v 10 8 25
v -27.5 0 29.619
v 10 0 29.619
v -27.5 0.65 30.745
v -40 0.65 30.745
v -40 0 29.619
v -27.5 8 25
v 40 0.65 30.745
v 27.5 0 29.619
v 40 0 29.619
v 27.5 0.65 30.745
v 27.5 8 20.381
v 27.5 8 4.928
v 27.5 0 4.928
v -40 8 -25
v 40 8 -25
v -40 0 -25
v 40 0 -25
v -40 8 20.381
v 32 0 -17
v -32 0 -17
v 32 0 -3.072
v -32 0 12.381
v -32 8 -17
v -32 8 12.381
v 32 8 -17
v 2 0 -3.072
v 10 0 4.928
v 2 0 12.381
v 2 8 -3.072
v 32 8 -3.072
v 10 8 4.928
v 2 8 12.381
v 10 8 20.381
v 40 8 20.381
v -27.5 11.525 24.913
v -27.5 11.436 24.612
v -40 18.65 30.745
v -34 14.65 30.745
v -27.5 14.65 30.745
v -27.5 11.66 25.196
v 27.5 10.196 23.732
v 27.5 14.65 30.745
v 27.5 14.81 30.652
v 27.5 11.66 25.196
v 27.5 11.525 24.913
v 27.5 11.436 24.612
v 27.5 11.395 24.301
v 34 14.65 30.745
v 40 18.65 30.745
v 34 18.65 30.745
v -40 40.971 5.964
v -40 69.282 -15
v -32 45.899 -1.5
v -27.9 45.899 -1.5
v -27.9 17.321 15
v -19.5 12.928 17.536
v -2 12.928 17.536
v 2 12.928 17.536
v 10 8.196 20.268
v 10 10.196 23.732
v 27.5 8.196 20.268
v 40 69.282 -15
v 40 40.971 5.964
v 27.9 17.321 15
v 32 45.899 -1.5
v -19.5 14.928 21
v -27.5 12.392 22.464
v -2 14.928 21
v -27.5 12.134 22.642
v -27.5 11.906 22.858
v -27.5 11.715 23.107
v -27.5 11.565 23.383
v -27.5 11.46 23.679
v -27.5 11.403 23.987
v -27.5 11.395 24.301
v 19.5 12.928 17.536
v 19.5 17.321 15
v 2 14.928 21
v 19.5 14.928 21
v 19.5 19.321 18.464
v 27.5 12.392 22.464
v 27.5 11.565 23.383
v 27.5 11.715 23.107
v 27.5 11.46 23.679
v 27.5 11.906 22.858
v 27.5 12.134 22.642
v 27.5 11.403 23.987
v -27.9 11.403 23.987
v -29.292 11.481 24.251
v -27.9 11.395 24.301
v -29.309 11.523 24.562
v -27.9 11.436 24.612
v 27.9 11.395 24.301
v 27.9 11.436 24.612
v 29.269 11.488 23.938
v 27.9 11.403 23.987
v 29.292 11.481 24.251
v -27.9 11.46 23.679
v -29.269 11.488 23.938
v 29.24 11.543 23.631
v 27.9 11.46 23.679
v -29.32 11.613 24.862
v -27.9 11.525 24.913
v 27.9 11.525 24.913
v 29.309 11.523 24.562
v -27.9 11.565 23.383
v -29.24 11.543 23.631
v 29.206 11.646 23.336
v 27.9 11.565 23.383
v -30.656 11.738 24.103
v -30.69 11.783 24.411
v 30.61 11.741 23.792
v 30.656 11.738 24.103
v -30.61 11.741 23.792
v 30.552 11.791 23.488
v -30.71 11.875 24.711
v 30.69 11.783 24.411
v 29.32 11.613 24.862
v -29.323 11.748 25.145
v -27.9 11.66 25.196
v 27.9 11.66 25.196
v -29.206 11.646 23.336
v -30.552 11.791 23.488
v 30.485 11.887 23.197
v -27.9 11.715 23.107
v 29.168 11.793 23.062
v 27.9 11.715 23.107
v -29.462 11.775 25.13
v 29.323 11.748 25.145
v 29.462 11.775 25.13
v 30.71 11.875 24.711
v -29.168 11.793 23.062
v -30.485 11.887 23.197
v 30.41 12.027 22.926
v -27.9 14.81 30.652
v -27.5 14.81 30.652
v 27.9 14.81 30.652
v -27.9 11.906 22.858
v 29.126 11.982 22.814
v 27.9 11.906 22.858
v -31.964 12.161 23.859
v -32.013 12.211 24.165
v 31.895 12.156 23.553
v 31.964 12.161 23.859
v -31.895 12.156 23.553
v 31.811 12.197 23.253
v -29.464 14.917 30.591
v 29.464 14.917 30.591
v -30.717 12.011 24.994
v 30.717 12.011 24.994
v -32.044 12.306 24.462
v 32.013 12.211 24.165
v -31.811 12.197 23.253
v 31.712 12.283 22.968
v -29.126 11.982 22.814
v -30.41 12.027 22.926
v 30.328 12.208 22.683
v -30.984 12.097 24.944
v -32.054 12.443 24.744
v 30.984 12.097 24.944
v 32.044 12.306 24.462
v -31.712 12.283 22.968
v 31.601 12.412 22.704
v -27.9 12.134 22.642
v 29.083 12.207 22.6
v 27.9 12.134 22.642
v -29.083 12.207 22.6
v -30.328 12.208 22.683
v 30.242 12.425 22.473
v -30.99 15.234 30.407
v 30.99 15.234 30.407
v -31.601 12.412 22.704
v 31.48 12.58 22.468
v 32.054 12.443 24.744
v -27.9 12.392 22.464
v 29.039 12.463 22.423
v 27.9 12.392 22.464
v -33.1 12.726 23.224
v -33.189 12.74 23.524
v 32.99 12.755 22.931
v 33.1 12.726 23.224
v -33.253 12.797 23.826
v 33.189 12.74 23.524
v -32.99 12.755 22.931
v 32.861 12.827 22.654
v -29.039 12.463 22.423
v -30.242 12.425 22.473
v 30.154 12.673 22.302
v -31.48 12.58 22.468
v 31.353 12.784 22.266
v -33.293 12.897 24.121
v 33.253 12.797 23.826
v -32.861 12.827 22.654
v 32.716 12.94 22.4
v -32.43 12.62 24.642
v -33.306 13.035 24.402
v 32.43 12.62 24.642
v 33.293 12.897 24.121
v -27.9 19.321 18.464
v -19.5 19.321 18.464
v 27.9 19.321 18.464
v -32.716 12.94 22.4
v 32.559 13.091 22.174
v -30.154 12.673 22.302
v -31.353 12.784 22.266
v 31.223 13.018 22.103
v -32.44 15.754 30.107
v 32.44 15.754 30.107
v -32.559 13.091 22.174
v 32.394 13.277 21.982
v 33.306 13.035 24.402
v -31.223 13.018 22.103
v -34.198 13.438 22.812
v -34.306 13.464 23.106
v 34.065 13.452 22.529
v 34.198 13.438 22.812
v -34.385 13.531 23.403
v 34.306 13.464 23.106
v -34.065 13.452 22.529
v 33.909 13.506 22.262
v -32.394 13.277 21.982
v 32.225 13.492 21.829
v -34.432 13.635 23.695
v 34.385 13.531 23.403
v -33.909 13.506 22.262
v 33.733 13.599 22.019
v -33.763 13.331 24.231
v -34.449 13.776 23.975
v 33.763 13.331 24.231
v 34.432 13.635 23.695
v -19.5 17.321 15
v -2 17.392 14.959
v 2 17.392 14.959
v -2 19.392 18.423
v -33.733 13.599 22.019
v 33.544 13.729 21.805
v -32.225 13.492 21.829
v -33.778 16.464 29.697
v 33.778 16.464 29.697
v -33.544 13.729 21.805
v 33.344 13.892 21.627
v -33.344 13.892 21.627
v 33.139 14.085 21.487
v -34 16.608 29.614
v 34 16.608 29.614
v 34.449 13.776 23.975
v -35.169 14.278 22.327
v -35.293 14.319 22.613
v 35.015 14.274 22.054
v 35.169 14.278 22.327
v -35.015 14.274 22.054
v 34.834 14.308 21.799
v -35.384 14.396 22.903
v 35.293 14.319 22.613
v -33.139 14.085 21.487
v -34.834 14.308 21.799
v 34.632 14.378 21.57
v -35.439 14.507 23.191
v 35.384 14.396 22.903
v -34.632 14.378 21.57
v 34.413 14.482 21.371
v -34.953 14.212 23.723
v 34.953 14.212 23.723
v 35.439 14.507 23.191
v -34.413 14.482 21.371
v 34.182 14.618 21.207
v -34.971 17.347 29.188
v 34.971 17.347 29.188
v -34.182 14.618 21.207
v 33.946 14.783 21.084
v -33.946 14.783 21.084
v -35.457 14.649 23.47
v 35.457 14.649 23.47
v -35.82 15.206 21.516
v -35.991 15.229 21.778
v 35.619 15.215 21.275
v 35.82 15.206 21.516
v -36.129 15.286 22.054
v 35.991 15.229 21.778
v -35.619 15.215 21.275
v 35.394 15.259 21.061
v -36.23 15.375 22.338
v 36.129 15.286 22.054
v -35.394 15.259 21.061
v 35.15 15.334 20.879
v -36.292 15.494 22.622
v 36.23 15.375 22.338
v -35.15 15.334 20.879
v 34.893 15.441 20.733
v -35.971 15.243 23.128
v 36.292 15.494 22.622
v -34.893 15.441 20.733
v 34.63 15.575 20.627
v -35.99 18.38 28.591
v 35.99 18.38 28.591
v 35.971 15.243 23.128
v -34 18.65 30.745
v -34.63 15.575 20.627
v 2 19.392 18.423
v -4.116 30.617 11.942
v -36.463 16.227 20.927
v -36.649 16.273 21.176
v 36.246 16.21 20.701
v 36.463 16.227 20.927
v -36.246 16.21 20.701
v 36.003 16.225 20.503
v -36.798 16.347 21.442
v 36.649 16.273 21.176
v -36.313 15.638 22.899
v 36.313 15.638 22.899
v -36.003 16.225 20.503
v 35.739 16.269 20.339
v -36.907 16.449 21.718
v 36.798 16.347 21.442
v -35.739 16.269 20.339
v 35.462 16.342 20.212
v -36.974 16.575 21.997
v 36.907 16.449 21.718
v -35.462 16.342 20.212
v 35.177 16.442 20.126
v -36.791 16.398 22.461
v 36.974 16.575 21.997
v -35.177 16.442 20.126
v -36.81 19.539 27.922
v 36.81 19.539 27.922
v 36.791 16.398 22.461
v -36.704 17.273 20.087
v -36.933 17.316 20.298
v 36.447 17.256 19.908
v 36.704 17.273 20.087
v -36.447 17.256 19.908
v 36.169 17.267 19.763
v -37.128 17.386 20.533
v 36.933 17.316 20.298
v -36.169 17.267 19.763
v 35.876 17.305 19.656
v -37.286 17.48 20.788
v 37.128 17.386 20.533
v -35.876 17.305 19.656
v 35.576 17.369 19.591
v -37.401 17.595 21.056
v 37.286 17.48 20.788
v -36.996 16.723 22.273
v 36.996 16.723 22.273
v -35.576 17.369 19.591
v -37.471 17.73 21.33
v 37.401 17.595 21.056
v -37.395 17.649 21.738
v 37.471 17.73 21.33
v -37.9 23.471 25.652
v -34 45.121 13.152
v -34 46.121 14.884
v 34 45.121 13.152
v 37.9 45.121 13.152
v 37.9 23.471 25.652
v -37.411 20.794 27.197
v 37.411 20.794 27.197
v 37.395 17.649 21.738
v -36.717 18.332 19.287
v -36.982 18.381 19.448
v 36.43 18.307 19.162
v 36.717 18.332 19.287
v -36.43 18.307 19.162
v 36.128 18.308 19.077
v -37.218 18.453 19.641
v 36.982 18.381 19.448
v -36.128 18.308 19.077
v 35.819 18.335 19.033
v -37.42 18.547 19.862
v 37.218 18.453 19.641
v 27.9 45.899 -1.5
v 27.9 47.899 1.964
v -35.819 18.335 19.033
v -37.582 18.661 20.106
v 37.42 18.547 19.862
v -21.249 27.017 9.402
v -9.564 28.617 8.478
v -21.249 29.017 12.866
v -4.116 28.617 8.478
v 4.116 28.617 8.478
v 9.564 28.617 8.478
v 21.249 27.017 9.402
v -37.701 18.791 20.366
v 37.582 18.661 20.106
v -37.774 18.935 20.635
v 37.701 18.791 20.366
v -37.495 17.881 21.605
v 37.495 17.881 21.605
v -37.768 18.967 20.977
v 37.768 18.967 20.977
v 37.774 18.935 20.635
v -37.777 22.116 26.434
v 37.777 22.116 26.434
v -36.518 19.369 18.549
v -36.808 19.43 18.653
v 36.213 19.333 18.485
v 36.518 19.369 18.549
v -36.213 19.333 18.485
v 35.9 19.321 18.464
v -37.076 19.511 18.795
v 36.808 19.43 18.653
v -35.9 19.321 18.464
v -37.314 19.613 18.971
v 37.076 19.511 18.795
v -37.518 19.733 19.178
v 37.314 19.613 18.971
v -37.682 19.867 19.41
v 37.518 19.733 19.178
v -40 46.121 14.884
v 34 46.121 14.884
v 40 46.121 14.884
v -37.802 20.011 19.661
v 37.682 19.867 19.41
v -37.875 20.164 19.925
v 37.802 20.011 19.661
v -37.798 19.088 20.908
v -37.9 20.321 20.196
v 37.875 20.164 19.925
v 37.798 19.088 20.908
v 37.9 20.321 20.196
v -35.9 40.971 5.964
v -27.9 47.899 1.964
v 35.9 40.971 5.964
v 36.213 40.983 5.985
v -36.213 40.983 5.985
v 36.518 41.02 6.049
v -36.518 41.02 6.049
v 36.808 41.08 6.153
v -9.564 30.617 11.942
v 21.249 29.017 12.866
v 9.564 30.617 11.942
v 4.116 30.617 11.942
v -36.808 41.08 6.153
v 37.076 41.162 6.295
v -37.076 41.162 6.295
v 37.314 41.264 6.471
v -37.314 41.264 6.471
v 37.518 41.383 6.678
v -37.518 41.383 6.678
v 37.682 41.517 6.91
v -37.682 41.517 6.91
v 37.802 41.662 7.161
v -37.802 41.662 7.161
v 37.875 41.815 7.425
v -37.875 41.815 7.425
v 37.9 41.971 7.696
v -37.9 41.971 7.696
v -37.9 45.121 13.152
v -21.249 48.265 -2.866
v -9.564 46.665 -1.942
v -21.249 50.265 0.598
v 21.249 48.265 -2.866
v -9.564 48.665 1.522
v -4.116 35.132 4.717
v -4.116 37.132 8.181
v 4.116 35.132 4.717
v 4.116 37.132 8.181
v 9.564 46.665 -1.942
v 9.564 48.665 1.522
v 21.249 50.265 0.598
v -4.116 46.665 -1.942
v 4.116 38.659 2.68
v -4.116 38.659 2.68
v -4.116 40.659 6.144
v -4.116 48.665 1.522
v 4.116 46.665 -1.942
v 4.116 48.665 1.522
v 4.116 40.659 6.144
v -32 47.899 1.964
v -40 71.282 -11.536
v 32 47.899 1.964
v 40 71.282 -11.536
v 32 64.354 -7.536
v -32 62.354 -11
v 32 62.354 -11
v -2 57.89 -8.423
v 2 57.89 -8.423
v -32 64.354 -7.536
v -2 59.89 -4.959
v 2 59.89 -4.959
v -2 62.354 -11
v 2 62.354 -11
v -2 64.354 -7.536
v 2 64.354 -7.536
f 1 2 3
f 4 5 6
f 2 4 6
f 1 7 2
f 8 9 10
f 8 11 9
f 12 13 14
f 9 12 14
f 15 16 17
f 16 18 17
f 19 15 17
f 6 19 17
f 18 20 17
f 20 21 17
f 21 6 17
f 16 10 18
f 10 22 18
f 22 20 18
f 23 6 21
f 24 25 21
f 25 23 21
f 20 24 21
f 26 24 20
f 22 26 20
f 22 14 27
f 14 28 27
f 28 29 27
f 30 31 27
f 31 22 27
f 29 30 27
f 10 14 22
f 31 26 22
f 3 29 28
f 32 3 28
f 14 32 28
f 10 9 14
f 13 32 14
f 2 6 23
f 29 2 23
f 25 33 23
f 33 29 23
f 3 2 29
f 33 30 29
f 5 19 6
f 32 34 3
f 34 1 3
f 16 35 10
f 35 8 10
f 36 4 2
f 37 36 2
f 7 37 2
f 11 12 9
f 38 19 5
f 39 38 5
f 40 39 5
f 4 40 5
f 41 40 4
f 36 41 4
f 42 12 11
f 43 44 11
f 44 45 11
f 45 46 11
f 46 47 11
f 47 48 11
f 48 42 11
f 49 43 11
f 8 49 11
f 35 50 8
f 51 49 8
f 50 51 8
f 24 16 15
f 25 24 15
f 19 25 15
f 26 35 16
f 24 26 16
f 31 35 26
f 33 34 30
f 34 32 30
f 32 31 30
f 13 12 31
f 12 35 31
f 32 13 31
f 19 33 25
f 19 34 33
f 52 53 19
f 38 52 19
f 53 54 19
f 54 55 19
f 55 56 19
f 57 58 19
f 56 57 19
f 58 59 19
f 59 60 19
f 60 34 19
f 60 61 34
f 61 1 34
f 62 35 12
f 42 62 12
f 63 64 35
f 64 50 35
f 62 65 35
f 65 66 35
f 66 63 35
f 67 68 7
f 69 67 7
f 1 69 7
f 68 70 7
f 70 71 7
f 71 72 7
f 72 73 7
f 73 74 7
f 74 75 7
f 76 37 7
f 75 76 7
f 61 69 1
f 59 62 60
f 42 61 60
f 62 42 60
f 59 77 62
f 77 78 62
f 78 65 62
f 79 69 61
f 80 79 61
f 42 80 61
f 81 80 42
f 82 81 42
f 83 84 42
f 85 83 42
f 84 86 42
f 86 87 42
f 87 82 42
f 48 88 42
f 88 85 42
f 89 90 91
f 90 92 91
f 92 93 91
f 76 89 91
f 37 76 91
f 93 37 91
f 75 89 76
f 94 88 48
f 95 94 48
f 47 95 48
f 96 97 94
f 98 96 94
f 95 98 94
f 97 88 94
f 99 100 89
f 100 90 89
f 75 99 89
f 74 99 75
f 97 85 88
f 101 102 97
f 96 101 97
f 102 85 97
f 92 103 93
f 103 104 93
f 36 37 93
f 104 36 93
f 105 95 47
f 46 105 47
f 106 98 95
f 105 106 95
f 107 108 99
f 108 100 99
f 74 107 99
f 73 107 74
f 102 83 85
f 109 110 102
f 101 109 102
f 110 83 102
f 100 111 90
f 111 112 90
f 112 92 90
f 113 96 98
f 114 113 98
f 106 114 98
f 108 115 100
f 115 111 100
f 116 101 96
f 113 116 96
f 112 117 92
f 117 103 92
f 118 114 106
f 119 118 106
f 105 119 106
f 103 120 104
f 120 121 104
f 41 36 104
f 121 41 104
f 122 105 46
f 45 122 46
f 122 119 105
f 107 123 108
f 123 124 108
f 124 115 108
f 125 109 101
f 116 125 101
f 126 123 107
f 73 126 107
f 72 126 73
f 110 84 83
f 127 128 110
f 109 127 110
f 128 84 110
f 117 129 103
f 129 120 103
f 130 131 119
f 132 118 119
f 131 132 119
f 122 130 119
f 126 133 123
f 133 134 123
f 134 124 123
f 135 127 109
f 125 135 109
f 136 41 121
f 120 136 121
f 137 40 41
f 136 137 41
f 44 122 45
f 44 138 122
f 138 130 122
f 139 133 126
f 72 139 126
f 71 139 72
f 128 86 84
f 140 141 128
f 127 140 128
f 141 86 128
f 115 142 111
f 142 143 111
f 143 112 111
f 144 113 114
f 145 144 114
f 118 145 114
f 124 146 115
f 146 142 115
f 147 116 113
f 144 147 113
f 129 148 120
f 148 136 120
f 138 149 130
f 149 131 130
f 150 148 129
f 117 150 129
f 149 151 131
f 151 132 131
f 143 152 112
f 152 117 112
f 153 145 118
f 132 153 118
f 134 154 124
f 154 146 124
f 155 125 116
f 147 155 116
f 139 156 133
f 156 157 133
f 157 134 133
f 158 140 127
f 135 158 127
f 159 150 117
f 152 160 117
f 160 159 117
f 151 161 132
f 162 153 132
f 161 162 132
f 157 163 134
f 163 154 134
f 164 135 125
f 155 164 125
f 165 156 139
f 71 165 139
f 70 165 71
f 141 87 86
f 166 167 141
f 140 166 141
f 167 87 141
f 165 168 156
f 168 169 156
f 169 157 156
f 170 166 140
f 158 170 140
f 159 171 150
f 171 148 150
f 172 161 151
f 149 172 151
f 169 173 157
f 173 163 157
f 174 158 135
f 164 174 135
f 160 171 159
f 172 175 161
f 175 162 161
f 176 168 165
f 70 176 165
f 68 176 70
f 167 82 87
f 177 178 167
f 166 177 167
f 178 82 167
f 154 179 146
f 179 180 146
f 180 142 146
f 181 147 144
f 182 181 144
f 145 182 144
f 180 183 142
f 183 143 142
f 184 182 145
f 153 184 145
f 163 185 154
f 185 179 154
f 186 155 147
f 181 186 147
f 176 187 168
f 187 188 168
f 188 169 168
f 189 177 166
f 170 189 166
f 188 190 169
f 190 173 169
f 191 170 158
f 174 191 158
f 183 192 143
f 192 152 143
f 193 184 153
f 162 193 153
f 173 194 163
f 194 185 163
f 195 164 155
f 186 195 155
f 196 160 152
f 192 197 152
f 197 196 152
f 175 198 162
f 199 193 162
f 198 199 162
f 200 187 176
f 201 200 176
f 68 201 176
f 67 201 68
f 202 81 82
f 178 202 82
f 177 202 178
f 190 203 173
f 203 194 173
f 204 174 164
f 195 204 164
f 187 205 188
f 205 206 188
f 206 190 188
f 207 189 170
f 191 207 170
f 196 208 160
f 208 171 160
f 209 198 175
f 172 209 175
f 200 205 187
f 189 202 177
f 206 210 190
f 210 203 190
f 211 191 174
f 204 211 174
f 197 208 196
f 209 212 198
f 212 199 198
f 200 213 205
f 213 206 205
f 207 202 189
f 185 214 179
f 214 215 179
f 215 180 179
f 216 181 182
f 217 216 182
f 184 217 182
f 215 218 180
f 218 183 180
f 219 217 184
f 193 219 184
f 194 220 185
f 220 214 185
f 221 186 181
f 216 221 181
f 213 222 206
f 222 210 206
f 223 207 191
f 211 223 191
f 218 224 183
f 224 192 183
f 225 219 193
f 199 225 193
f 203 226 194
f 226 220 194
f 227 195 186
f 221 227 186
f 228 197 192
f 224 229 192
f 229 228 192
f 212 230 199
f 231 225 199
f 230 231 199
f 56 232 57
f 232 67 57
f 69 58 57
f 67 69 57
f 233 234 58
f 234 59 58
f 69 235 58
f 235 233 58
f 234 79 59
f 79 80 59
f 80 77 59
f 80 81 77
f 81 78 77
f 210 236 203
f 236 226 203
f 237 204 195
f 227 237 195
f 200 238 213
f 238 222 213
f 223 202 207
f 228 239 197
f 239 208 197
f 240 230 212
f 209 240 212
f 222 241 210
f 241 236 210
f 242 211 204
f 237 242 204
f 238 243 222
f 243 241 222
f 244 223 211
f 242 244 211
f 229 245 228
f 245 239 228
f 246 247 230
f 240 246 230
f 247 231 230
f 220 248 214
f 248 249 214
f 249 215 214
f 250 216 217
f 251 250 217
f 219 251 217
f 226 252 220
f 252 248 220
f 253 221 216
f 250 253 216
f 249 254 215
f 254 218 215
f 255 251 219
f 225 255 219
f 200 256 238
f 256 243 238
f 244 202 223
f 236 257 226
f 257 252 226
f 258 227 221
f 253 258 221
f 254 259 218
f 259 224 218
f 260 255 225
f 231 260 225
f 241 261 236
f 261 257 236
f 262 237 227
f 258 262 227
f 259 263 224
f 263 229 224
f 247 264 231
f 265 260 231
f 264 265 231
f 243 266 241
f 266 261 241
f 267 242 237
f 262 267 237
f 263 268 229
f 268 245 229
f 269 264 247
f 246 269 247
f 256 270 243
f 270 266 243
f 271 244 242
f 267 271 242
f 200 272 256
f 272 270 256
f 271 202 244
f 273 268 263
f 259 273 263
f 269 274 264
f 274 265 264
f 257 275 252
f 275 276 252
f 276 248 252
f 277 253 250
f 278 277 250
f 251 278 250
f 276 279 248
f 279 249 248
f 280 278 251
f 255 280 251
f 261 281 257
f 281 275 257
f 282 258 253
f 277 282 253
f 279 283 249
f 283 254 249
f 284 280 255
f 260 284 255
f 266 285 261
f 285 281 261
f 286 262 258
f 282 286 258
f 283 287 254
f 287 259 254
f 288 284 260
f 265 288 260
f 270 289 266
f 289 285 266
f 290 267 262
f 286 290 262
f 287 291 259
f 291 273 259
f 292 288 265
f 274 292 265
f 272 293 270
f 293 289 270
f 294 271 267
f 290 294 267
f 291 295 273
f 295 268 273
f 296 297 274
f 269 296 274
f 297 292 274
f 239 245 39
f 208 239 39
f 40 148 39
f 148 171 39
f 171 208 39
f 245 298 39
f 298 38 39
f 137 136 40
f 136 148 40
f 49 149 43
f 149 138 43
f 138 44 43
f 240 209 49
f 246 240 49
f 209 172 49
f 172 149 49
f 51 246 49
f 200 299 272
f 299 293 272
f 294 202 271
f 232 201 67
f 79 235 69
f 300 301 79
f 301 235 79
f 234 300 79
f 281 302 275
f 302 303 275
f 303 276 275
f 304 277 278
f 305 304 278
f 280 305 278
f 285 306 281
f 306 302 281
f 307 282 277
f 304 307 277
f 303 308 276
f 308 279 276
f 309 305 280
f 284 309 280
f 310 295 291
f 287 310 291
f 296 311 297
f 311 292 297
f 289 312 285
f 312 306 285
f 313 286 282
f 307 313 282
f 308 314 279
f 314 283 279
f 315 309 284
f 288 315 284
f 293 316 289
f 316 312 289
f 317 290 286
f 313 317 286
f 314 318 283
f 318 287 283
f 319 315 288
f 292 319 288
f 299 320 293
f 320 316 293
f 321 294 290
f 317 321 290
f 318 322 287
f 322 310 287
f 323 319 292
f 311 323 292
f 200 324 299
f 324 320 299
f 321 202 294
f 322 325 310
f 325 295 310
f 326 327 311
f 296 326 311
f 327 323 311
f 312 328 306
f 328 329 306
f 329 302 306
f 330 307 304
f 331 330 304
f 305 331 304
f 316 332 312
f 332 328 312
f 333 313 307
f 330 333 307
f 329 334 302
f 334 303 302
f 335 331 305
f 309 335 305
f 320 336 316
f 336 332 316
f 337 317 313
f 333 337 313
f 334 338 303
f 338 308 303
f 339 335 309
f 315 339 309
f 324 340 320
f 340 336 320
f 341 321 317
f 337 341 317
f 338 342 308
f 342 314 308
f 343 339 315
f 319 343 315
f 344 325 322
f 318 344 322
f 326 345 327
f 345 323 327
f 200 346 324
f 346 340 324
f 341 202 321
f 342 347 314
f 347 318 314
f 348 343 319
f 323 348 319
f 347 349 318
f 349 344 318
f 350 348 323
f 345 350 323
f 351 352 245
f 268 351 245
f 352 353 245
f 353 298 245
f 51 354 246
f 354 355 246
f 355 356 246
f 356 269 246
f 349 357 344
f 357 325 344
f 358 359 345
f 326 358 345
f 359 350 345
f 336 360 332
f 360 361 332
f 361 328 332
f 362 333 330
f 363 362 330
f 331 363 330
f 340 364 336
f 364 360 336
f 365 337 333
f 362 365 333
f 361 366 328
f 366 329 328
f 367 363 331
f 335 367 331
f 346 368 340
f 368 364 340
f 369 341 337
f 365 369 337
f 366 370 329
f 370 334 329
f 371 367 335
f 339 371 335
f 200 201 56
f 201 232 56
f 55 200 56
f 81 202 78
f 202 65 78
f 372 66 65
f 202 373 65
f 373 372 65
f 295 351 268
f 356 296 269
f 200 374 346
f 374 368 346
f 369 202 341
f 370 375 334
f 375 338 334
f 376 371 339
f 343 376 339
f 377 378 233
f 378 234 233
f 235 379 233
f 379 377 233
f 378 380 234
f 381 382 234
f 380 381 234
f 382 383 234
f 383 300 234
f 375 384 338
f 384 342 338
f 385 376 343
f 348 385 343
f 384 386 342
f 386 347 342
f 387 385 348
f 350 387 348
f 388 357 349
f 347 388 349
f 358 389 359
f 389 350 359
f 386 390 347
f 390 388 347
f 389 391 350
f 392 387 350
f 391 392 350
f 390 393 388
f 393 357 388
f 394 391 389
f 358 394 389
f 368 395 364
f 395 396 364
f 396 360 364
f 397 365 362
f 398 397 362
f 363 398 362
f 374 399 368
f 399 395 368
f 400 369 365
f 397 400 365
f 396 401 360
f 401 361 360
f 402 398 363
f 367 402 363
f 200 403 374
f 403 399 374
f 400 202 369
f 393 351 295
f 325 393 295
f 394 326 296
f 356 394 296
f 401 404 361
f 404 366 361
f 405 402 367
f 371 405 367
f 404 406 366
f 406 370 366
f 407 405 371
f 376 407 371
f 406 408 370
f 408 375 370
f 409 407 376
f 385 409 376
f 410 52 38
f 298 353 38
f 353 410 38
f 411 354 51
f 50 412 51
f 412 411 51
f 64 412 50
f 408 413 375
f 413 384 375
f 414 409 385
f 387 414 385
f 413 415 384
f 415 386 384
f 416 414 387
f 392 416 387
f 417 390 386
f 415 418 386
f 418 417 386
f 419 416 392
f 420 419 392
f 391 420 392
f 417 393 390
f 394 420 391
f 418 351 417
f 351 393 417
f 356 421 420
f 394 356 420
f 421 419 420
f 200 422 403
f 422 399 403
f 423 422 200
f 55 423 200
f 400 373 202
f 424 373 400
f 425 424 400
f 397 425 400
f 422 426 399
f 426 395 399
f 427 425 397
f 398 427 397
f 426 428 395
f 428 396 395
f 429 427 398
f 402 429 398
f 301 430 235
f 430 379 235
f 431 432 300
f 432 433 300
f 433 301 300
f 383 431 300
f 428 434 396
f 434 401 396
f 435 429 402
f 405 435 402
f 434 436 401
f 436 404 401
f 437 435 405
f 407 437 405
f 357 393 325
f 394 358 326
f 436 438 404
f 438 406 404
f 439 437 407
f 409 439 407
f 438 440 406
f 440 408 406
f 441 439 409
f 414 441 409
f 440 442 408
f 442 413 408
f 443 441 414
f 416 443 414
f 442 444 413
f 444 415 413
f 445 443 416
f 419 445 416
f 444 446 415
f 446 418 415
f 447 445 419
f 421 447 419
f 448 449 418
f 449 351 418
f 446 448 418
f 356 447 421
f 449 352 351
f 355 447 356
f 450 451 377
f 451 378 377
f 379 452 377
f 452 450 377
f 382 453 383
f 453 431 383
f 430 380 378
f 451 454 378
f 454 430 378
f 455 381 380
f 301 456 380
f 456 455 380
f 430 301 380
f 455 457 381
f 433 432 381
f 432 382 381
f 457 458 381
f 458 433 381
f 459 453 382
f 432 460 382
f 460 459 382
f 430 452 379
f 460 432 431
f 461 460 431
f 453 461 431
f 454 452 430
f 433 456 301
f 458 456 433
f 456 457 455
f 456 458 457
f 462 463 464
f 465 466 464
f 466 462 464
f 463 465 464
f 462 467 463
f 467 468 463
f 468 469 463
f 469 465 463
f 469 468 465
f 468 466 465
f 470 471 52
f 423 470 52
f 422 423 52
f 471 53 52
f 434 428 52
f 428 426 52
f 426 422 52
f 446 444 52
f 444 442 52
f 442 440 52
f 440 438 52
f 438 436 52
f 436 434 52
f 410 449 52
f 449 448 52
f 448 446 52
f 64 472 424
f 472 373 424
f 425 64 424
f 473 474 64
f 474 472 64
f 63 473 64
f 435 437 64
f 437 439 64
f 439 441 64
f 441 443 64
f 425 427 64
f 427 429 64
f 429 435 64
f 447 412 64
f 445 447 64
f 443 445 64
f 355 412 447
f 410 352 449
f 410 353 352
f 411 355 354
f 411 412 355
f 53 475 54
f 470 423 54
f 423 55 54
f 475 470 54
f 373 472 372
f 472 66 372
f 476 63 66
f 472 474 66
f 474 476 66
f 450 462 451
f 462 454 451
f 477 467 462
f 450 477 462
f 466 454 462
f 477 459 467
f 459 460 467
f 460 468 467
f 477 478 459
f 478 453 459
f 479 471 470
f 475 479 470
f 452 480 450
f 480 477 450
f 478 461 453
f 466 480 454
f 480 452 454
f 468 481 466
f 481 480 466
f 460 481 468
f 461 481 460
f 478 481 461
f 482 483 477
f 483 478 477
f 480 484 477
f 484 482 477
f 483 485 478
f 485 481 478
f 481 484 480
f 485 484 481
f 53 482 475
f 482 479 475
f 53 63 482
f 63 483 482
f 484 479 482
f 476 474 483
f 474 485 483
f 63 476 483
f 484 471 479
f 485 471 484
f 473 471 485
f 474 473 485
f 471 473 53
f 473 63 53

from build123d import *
from OCP.BRepFilletAPI import BRepFilletAPI_MakeChamfer

# Parameters (mm, degrees)
SKETCH1_W           = 80
SKETCH1_H           = 50
BOSS_EXTRUDE1_DEPTH = 8
BOSS_EXTRUDE2_DEPTH = 80
SKETCH3_W           = 2.1
SKETCH3_H           = 35
BOSS_EXTRUDE3_DEPTH = 8.3
FILLET1_R           = 10
FILLET2_R           = 2
BOSS_EXTRUDE4_DEPTH = 10
CHAMFER2_SIZE       = 17.320508076
CHAMFER2_SIZE_2     = 10
SKETCH5_W           = 12.5
SKETCH5_H           = 9.237604307
BOSS_EXTRUDE5_DEPTH = 8.3
SKETCH6_W           = 6
SKETCH6_H           = 47.309401077
BOSS_EXTRUDE6_DEPTH = 2
CHAMFER3_SIZE       = 9
CHAMFER3_SIZE2      = 15.588457268
SKETCH7_W           = 17.5
SKETCH7_H           = 11.773502692
CUT_EXTRUDE1_DEPTH  = 12
SKETCH8_W           = 17.5
SKETCH8_H           = 15
CUT_EXTRUDE2_DEPTH  = 12
CUT_EXTRUDE3_DEPTH  = 12
CUT_EXTRUDE4_DEPTH  = 4
BOSS_EXTRUDE7_DEPTH = 4
CUT_EXTRUDE5_REACH  = 87.126
SKETCH12_W          = 17.5
SKETCH12_H          = 2.535898385


with BuildPart() as part:
    # Sketch1 → Boss-Extrude1 (new body)
    with BuildSketch(Plane(origin=(0, 0, 0), x_dir=(1, 0, 0), z_dir=(0, 1, 0))):
        Rectangle(SKETCH1_W, SKETCH1_H)
    extrude(amount=BOSS_EXTRUDE1_DEPTH)

    # Sketch2 → Boss-Extrude2 (add)
    with BuildSketch(Plane(origin=(40, 0, 0), x_dir=(0, 0, -1), z_dir=(1, 0, 0))):
        Polygon((15, 69.282032303), (11.535898385, 71.282032303), (-25, 8), (-20.381197846, 8), align=None)
    extrude(amount=-BOSS_EXTRUDE2_DEPTH)

    # Sketch3 → Boss-Extrude3 (add)
    with BuildSketch(Plane(origin=(0, 12.825317547, 22.214101615), x_dir=(1, 0, 0), z_dir=(0, 0.5000000000000041, 0.8660254037844364))):
        with Locations((-38.95, 15)):
            Rectangle(SKETCH3_W, SKETCH3_H)
        Polygon((-27.5, -5.57179677), (-27.5, -2.5), (-37.9, -2.5), (-40, -2.5), (-40, -5.57179677), align=None)
        Polygon((40, -5.57179677), (40, -2.5), (37.9, -2.5), (27.5, -2.5), (27.5, -5.57179677), align=None)
        with Locations((38.95, 15)):
            Rectangle(SKETCH3_W, SKETCH3_H)
    extrude(amount=BOSS_EXTRUDE3_DEPTH)

    # Fillet1
    fillet1_edges = [part.edges().sort_by_distance(p)[0] for p in [
        (-37.9, 12.735254038, 27.058107041),
        (37.9, 12.735254038, 27.058107041),
    ]]
    fillet(fillet1_edges, radius=FILLET1_R)

    # Fillet2
    fillet2_edges = [part.edges().sort_by_distance(p)[0] for p in [
        (-27.7, 10.660254038, 23.464101615),
        (-37.9, 30.145825623, 12.214101615),
        (27.7, 10.660254038, 23.464101615),
        (37.9, 30.145825623, 12.214101615),
        (34.971067812, 13.196783719, 21.999635521),
        (-34.971067812, 13.196783719, 21.999635521),
    ]]
    fillet(fillet2_edges, radius=FILLET2_R)

    # Sketch4 → Boss-Extrude4 (add)
    with BuildSketch(Plane.XY.offset(25)):
        Polygon((40, 0), (40, 8), (27.5, 8), (-27.5, 8), (-40, 8), (-40, 0), align=None)
    extrude(amount=BOSS_EXTRUDE4_DEPTH)

    # Chamfer2
    # the kernel refuses this chamfer: 17.320508076, 10 mm, written as the material it takes off along each edge
    with BuildSketch(Plane(origin=(-84.809639706, 8, 35), x_dir=(0, -0.999813220622208, 0.019326765612700497), z_dir=(1, 0, 0))) as chamfer2_piece_1:
        Polygon((CHAMFER2_SIZE * 0.999813220604, CHAMFER2_SIZE * 0.0193267656124), (-CHAMFER2_SIZE_2 * 0.0193267656127, CHAMFER2_SIZE_2 * 0.999813220622), (0, 0), align=None)
    extrude(amount=169.619279412, mode=Mode.SUBTRACT)

    # Sketch5 → Boss-Extrude5 (add)
    with BuildSketch(Plane(origin=(0, 12.825317547, 22.214101615), x_dir=(1, 0, 0), z_dir=(0, 0.49999999999999656, 0.8660254037844407))):
        with Locations((-33.75, -10.190598924)):
            Rectangle(SKETCH5_W, SKETCH5_H)
        with Locations((33.75, -10.190598924)):
            Rectangle(SKETCH5_W, SKETCH5_H)
    extrude(amount=BOSS_EXTRUDE5_DEPTH)

    # Sketch6 → Boss-Extrude6 (add)
    with BuildSketch(Plane(origin=(0, 16.975317547, 29.402112467), x_dir=(1, 0, 0), z_dir=(0, 0.5000000000000041, 0.8660254037844364))):
        with Locations((-37, 8.845299461)):
            Rectangle(SKETCH6_W, SKETCH6_H)
        with Locations((37, 8.845299461)):
            Rectangle(SKETCH6_W, SKETCH6_H)
    extrude(amount=BOSS_EXTRUDE6_DEPTH)

    # Chamfer3: one chamfer whose edges measure the first distance from different faces: ONE call of the kernel's chamfer builder (chamfer() names one face for all edges)
    chamfer3_edges_1 = [part.edges().sort_by_distance(p)[0] for p in [
        (-37, 5.15, 38.538863812),
    ]]
    chamfer3_side_1 = [part.faces().sort_by_distance(p)[0] for p in [
        (-34.086933045, 2.341954644, 33.675186585),
    ]]
    chamfer3_edges_2 = [part.edges().sort_by_distance(p)[0] for p in [
        (37, 5.15, 38.538863812),
    ]]
    chamfer3_side_2 = [part.faces().sort_by_distance(p)[0] for p in [
        (34.086933045, 2.341954644, 33.675186585),
    ]]
    chamfer3 = BRepFilletAPI_MakeChamfer(part.part.solid().wrapped)
    for e in chamfer3_edges_1:
        chamfer3.Add(CHAMFER3_SIZE, CHAMFER3_SIZE2, e.wrapped, chamfer3_side_1[0].wrapped)  # the first distance lies on this face
    for e in chamfer3_edges_2:
        chamfer3.Add(CHAMFER3_SIZE, CHAMFER3_SIZE2, e.wrapped, chamfer3_side_2[0].wrapped)  # the first distance lies on this face
    add(Compound.cast(chamfer3.Shape()), mode=Mode.REPLACE)

    # Sketch7 → Cut-Extrude1 (cut)
    with BuildSketch(Plane(origin=(0, 12.825317547, 22.214101615), x_dir=(1, 0, 0), z_dir=(0, 0.49999999999999656, 0.8660254037844407))):
        with Locations((18.75, -8.922649731)):
            Rectangle(SKETCH7_W, SKETCH7_H)
    extrude(amount=-CUT_EXTRUDE1_DEPTH, mode=Mode.SUBTRACT)

    # Sketch8 → Cut-Extrude2 (cut)
    with BuildSketch(Plane(origin=(0, 8, 0), x_dir=(1, 0, 0), z_dir=(0, 1, 0))):
        with Locations((18.75, -12.42820323)):
            Rectangle(SKETCH8_W, SKETCH8_H)
    extrude(amount=-CUT_EXTRUDE2_DEPTH, mode=Mode.SUBTRACT)

    # Sketch9 → Cut-Extrude3 (cut)
    with BuildSketch(Plane(origin=(0, 8, 0), x_dir=(1, 0, 0), z_dir=(0, 1, 0))):
        Polygon((-32, -12.381197846), (2, -12.381197846), (2, 3.07179677), (32, 3.07179677), (32, 17), (-32, 17), align=None)
    extrude(amount=-CUT_EXTRUDE3_DEPTH, mode=Mode.SUBTRACT)

    # Sketch10 → Cut-Extrude4 (cut)
    with BuildSketch(Plane(origin=(0, 12.825317547, 22.214101615), x_dir=(1, 0, 0), z_dir=(0, 0.500000000000004, 0.8660254037844365))):
        Polygon((-19.5, 7.5), (-19.5, 2.42820323), (2, 2.42820323), (2, 4.964101615), (19.5, 4.964101615), (19.5, 7.5), (27.9, 7.5), (27.9, 40.5), (32, 40.5), (32, 59.5), (-32, 59.5), (-32, 40.5), (-27.9, 40.5), (-27.9, 7.5), align=None)
    extrude(amount=-CUT_EXTRUDE4_DEPTH, mode=Mode.SUBTRACT)

    # Sketch11 → Boss-Extrude7 (add)
    with BuildSketch(Plane(origin=(0, 12.825317547, 22.214101615), x_dir=(1, 0, 0), z_dir=(0, 0.500000000000004, 0.8660254037844365))):
        Polygon((-2, 32.140001961), (-2, 54.345299462), (-21.248711306, 43.232050808), (-21.248711306, 18.696152423), (-2, 7.582903769), (-2, 28.066803955), (-4.115553581, 28.066803955), (-4.115553581, 20.544526768), (-9.563712394, 20.544526768), (-9.563712394, 41.383676462), (-4.115553581, 41.383676462), (-4.115553581, 32.140001961), align=None)
        Polygon((21.248711306, 43.232050808), (2, 54.345299462), (2, 32.140001961), (4.115553581, 32.140001961), (4.115553581, 41.383676462), (9.563712394, 41.383676462), (9.563712394, 20.544526768), (4.115553581, 20.544526768), (4.115553581, 28.066803955), (2, 28.066803955), (2, 7.582903769), (21.248711306, 18.696152423), align=None)
        Polygon((2, 54.345299462), (0, 55.5), (-2, 54.345299462), (-2, 32.140001961), (0, 32.140001961), (2, 32.140001961), align=None)
        Polygon((-2, 54.345299462), (0, 55.5), (2, 54.345299462), (2, 59.5), (-2, 59.5), align=None)
        Polygon((0, 6.42820323), (-2, 7.582903769), (-2, 2.42820323), (2, 2.42820323), (2, 4.964101615), (2, 7.582903769), align=None)
        Polygon((0, 28.066803955), (-2, 28.066803955), (-2, 7.582903769), (0, 6.42820323), (2, 7.582903769), (2, 28.066803955), align=None)
    extrude(amount=-BOSS_EXTRUDE7_DEPTH)

    # Sketch12 → Cut-Extrude5 (cut, up to next)
    with BuildSketch(Plane(origin=(0, 12.825317547, 22.214101615), x_dir=(1, 0, 0), z_dir=(0, 0.500000000000004, 0.8660254037844365)), mode=Mode.PRIVATE) as cut_extrude5_sk1:
        with Locations((10.75, 3.696152423)):
            Rectangle(SKETCH12_W, SKETCH12_H)
    cut_extrude5_tool1 = extrude(cut_extrude5_sk1.sketch, amount=-CUT_EXTRUDE5_REACH, mode=Mode.PRIVATE) & part.part
    add(cut_extrude5_tool1.solids().sort_by_distance((10.75, 16.026279, 20.366025))[0], mode=Mode.SUBTRACT)


solid = part.part
